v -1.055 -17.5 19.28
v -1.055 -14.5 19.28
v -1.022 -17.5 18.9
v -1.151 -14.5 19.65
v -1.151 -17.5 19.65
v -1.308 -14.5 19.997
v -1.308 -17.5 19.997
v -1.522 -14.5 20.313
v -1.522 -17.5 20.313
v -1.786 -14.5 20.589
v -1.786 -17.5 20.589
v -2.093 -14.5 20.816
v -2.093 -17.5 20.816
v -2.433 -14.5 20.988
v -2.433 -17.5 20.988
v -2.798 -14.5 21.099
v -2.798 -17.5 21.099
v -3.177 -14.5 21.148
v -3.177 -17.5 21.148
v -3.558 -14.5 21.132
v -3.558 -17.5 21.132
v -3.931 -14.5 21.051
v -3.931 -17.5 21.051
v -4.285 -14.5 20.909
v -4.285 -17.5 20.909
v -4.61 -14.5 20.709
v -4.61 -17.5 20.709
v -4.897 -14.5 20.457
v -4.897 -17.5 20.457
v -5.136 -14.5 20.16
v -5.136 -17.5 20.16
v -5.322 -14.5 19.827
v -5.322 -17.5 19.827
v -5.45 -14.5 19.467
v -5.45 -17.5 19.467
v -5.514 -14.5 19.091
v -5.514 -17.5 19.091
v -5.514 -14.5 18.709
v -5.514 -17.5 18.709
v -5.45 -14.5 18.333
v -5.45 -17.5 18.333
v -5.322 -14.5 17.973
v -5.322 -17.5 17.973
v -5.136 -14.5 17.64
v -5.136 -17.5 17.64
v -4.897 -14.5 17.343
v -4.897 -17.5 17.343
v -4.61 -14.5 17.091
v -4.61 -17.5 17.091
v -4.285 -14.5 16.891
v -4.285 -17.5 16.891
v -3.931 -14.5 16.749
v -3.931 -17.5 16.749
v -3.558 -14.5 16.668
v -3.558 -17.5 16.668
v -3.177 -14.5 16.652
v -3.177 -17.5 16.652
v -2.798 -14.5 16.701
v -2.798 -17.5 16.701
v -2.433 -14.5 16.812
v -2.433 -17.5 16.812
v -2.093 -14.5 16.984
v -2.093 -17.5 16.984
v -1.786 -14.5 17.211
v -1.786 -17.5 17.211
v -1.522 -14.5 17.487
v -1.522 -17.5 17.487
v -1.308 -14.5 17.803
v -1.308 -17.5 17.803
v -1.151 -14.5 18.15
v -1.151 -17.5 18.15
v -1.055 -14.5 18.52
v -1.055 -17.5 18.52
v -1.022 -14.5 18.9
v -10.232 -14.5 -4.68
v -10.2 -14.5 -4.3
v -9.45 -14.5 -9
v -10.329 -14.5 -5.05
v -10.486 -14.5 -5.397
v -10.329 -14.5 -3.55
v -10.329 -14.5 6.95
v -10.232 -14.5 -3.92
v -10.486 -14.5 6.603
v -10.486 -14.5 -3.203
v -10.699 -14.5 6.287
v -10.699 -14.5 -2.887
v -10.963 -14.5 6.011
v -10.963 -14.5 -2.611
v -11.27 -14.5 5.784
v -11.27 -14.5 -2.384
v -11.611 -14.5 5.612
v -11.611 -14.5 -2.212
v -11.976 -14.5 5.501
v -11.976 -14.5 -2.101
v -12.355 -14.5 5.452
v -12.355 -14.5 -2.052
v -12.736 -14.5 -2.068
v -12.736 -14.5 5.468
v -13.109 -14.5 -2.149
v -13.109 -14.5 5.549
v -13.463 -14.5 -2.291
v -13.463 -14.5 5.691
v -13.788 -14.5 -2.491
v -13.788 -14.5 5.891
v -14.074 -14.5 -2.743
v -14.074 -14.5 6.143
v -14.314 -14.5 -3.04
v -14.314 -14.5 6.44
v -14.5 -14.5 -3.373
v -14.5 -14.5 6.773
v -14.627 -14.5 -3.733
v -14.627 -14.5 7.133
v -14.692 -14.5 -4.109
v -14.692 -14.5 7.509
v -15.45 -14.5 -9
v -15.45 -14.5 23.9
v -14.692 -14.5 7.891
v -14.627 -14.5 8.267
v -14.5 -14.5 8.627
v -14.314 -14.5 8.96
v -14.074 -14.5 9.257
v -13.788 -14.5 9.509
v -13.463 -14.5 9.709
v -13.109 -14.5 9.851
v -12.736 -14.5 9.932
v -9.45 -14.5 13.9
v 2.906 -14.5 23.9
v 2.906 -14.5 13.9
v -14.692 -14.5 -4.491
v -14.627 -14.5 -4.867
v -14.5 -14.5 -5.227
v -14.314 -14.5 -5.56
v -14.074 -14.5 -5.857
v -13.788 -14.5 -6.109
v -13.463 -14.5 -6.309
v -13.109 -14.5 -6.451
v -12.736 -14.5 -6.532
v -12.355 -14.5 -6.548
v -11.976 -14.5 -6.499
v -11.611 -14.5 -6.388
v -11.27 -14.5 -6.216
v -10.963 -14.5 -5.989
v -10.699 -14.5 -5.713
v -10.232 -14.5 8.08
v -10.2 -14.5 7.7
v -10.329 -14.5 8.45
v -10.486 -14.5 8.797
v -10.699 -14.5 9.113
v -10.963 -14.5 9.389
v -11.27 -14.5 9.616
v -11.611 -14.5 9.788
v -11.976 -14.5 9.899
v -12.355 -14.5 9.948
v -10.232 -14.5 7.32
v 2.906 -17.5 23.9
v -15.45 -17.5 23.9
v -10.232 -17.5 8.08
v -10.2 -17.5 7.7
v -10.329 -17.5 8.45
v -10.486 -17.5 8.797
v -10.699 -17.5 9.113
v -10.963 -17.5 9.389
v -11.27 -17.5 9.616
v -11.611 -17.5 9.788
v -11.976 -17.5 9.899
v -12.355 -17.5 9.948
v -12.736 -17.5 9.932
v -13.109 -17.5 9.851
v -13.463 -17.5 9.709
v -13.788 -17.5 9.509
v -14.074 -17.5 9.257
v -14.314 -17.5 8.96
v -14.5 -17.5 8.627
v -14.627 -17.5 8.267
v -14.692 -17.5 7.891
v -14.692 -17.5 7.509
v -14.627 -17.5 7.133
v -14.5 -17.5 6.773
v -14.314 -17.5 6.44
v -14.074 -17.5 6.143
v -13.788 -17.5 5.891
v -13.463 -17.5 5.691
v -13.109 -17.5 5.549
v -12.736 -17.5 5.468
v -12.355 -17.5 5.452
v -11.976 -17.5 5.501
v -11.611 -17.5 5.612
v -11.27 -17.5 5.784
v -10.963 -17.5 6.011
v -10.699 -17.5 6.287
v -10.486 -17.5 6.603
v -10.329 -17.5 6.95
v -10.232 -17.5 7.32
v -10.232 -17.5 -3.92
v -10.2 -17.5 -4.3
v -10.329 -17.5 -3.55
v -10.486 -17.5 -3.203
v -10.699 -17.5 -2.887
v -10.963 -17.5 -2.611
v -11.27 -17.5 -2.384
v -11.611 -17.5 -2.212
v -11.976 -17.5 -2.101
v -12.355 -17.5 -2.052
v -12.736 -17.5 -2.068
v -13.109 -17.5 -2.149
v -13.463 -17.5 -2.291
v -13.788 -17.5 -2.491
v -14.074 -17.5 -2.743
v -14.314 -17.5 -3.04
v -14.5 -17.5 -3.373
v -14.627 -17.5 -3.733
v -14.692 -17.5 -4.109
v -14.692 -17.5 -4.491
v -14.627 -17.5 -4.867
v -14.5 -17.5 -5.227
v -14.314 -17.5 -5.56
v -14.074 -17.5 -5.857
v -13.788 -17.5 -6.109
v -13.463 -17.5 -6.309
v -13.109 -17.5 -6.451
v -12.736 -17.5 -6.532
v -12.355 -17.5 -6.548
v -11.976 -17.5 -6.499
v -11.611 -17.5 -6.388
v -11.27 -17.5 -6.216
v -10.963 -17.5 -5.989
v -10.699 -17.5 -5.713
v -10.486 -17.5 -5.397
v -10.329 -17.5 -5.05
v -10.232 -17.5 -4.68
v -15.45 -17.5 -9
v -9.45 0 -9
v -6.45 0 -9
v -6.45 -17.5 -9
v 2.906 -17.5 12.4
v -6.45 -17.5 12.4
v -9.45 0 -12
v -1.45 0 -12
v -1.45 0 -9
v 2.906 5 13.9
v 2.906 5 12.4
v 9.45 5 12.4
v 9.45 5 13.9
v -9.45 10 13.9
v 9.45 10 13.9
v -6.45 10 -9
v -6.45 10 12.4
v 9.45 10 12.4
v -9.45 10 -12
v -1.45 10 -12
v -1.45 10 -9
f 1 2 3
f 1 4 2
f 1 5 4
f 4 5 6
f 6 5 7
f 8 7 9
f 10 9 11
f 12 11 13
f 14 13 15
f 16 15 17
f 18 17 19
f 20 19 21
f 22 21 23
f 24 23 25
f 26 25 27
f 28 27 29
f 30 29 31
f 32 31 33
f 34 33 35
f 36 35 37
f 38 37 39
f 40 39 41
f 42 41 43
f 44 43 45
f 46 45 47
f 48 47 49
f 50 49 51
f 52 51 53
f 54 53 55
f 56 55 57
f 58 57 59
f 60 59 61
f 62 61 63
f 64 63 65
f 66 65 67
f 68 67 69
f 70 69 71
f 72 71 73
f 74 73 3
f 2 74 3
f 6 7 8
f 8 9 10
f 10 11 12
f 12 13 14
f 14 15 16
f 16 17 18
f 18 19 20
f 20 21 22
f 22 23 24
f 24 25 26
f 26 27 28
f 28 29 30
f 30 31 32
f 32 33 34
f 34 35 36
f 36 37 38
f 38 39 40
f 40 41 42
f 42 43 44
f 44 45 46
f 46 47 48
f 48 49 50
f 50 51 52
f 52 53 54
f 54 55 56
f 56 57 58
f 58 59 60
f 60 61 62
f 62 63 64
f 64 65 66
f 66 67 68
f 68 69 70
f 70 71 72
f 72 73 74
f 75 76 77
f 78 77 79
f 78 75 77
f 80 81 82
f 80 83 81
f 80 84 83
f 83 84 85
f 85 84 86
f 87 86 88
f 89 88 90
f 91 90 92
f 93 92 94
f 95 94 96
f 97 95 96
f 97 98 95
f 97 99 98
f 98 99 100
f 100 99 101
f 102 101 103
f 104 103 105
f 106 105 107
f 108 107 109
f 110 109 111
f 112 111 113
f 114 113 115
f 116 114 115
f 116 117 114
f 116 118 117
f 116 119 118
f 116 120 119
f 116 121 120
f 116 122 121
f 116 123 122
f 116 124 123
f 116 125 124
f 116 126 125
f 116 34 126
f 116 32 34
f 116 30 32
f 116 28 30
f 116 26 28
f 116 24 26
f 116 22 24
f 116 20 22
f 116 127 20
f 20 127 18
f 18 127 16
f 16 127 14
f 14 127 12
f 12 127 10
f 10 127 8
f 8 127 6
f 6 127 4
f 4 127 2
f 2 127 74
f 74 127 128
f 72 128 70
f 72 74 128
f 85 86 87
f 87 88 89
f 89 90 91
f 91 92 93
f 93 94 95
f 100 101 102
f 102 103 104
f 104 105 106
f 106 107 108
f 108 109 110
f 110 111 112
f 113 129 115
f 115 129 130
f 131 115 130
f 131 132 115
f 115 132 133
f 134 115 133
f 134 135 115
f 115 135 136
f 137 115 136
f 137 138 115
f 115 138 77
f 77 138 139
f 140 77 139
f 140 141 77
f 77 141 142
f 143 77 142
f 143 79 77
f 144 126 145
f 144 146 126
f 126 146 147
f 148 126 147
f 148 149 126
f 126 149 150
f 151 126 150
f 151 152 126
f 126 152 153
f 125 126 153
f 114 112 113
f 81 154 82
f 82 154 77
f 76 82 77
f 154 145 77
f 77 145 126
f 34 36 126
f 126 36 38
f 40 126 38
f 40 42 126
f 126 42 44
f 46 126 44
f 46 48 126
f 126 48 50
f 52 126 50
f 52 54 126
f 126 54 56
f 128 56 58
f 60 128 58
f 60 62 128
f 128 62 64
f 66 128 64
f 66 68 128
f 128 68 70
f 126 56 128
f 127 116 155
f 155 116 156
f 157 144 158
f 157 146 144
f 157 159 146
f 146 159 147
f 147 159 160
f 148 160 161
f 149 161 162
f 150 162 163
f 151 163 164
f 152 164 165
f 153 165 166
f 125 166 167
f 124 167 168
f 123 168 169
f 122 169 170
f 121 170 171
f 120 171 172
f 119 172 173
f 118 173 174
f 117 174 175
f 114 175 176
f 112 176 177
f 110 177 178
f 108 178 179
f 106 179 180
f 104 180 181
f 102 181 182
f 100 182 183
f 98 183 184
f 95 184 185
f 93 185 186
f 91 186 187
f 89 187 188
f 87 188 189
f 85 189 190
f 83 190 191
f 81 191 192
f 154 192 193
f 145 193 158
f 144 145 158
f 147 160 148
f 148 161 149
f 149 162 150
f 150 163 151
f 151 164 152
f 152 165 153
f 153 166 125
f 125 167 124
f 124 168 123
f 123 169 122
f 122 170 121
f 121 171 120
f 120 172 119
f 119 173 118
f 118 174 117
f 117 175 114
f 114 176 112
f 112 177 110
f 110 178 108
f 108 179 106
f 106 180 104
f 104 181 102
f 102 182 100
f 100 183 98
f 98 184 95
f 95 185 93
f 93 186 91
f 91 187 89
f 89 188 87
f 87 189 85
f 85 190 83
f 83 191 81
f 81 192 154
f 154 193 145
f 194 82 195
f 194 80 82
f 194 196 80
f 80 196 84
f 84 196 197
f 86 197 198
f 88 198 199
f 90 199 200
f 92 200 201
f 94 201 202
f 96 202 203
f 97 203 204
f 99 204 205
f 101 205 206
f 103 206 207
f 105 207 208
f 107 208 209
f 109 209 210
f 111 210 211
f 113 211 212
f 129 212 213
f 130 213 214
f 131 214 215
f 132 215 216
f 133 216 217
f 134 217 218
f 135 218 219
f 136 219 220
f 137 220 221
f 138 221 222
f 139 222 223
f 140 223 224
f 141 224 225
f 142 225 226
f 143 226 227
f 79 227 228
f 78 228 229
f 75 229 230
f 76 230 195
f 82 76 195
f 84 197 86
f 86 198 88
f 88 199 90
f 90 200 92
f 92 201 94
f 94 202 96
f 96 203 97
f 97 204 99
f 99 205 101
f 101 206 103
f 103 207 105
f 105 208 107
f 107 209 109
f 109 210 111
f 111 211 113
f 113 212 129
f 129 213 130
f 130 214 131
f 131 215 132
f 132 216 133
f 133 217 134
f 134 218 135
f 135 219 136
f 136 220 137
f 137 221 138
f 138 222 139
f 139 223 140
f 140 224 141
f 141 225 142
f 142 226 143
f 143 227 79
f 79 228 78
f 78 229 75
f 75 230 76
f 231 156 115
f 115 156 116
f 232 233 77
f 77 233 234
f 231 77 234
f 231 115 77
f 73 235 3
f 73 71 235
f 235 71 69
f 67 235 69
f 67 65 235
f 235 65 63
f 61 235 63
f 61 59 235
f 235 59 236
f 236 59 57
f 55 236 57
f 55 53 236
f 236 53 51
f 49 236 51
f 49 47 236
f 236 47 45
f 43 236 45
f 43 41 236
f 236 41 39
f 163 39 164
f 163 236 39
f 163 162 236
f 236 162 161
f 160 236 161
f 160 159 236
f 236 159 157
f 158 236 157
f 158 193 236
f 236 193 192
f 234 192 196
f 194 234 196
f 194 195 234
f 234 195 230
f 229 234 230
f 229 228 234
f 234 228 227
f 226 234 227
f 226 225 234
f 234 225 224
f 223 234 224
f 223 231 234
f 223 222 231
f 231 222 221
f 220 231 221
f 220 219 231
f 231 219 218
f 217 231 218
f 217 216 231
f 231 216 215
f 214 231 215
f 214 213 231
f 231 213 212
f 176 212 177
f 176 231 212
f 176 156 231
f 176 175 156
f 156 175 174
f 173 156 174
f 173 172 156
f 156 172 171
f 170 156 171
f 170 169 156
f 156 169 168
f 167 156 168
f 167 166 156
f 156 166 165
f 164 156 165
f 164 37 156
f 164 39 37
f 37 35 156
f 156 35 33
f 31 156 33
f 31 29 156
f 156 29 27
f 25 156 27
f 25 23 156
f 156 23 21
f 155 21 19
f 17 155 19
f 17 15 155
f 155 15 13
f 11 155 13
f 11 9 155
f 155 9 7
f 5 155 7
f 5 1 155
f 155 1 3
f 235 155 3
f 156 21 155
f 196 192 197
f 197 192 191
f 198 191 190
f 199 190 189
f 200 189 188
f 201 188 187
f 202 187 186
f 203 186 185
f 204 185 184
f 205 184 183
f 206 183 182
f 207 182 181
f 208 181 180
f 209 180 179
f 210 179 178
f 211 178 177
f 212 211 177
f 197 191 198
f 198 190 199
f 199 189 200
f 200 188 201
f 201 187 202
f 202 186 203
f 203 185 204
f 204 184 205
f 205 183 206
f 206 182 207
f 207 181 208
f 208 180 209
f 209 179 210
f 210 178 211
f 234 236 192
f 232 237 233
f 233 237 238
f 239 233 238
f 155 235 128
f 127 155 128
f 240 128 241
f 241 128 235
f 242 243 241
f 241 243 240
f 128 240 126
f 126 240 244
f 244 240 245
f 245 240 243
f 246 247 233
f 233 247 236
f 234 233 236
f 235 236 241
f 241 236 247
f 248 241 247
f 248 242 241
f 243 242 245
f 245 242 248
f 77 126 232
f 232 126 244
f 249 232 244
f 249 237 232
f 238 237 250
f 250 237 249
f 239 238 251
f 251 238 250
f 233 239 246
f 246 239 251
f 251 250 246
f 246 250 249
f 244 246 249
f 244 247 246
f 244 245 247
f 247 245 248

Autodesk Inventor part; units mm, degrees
ref_plane "YZ Plane" through (0, 0, 0) normal (1, 0, 0) x (0, 1, 0)
ref_plane "XZ Plane" through (0, 0, 0) normal (0, 1, 0) x (-1, 0, 0)
ref_plane "XY Plane" through (0, 0, 0) normal (0, 0, 1) x (1, 0, 0)
sketch "Sketch1" plane through (0, 0, 0) normal (0, 1, 0) x (-1, 0, 0)
  line L0 (-9.45, 13.9) -> (9.45, 13.9)
  line L1 (9.45, 13.9) -> (9.45, 12.4)
  line L2 (9.45, 12.4) -> (-9.45, 12.4)
  line L3 (-9.45, 12.4) -> (-9.45, 13.9)
  line L4 (9.45, 12.4) -> (6.45, 12.4)
  line L5 (6.45, 12.4) -> (6.45, -9)
  line L6 (6.45, -9) -> (9.45, -9)
  line L7 (9.45, -9) -> (9.45, 12.4)
  line L8 (-9.45, 12.4) -> (-7.95, 12.4)
  line L9 (-7.95, 12.4) -> (-7.95, -9)
  line L10 (-7.95, -9) -> (-9.45, -9)
  line L11 (-9.45, -9) -> (-9.45, 12.4)
  line L12 (-7.95, -9) -> (-9.45, -9)
  line L13 (-9.45, -9) -> (-9.45, -12)
  line L14 (-9.45, -12) -> (-7.95, -12)
  line L15 (-7.95, -12) -> (-7.95, -9)
  line L16 (1.45, -9) -> (9.45, -9)
  line L17 (9.45, -9) -> (9.45, -12)
  line L18 (9.45, -12) -> (1.45, -12)
  line L19 (1.45, -12) -> (1.45, -9)
  line L20 (-9.45, -12) -> (-7.95, -12)
  line L21 (9.45, -12) -> (6.45, -12)
  line L22 (-7.95, -12) -> (-4.95, -12)
  line L23 (-4.95, -12) -> (-4.95, -9)
  line L24 (-4.95, -9) -> (-7.95, -9)
  line L25 (-7.95, -9) -> (-7.95, -12)
  point P0 (0, 0)
  point P1 (0, 12.4)
  dimension "d0" = 1.5
  dimension "d1" = 3
  dimension "d2" = 1.5
  dimension "d3" = 3
  dimension "d4" = 3
  dimension "d5" = 0
  dimension "d6" = 5
  dimension "d7" = 14.4
  dimension "d8" = 21.4
  dimension "d9" = 21.4
  dimension "d12" = 0
  dimension "d13" = 0
  dimension "d38" = 3
extrude "Extrusion1" add sketch "Sketch1" along normal blind 10 contours L0 L1 L2 L3 | L7 L6 L5 L2 | L17 L18 L19 L16 L6
sketch "Sketch8" plane through (0, 0, 0) normal (0, -1, 0) x (1, 0, 0)
  line L0 (2.9056, 13.9) -> (14.45, 13.9)
  line L1 (14.45, 13.9) -> (14.45, -22.6)
  line L2 (14.45, -22.6) -> (2.9056, -22.6)
  line L3 (2.9056, -22.6) -> (2.9056, 13.9)
  line L4 (-9.45, 13.9) -> (9.45, 13.9) projected
  point P0 (0, 0)
extrude "Extrusion6" cut sketch "Sketch8" against normal blind 5
sketch "Sketch9" plane through (0, 0, 0) normal (0, -1, 0) x (1, 0, 0)
  line L0 (2.9056, 12.4) -> (2.9056, 13.9) projected
  line L1 (-9.45, 13.9) -> (2.9056, 13.9) projected
  line L2 (-9.45, 13.9) -> (-9.45, -12) projected
  line L3 (-9.45, -12) -> (-1.45, -12) projected
  line L4 (-1.45, -12) -> (-1.45, -9) projected
  line L5 (-1.45, -9) -> (-6.45, -9) projected
  line L6 (-6.45, 12.4) -> (-6.45, -9) projected
  line L7 (2.9056, 12.4) -> (-6.45, 12.4) projected
  line L8 (-6.45, -9) -> (-1.45, -9) projected
  line L9 (-9.45, -12) -> (-9.45, 13.9) projected
  line L10 (-6.45, -9) -> (-9.45, -9)
  line L11 (-9.45, -9) -> (-9.45, 12.4)
  line L12 (-9.45, 12.4) -> (-6.45, 12.4)
  line L13 (-6.45, 12.4) -> (-6.45, -9)
  point P0 (0, 0)
extrude "Extrusion7" add sketch "Sketch9" along normal blind 17.5 contours L6 L10 L2 L12
sketch "Sketch10" plane through (-9.45, 0, 13.9) normal (-1, 0, 0) x (0, 0, 1)
  line L0 (-22.9, -17.5) -> (-1.5, -17.5) projected
  line L1 (-1.5, 0) -> (-1.5, -17.5) projected
  line L2 (-22.9, -17.5) -> (-1.5, -17.5)
  line L3 (-1.5, -17.5) -> (-1.5, -14.5)
  line L4 (-1.5, -14.5) -> (-22.9, -14.5)
  line L5 (-22.9, -14.5) -> (-22.9, -17.5)
  point P0 (-13.9, 0)
  dimension "d41" = 3
extrude "Extrusion8" add sketch "Sketch10" along normal blind 6
sketch "Sketch11" plane through (-9.45, -14.5, 12.4) normal (0, 1, 0) x (1, 0, 0)
  line L0 (0, 21.4) -> (0, 0) projected
  line L1 (0, 21.4) -> (-6, 21.4) projected
  line L2 (-6, 0) -> (-6, 21.4) projected
  line L3 (0, 0) -> (-6, 0) projected
  line L4 (3, 21.4) -> (-6, 21.4) projected
  line L5 (-3, 21.4) -> (-3, 0) construction
  circle A0 centre (-3, 4.7) radius 2.25
  circle A1 centre (-3, 16.7) radius 2.25
  line L6 (-6, 0) -> (-6, 21.4) projected
  line L7 (-6, 10.7) -> (0, 10.7) construction
  point P0 (9.45, 12.4)
  dimension "d44" = 4.5
  dimension "d45" = 4.5
  dimension "d50" = 6
  dimension "d51" = 6
extrude "Extrusion9" cut sketch "Sketch11" against normal blind 3 contours A0 | A1
sketch "Sketch12" plane through (0, 0, 0) normal (0, -1, 0) x (1, 0, 0)
  line L0 (-9.45, 12.4) -> (-6.45, 12.4) projected
  line L1 (2.9056, 12.4) -> (-6.45, 12.4) projected
  line L2 (2.9056, 12.4) -> (2.9056, 13.9) projected
  line L3 (-9.45, 13.9) -> (2.9056, 13.9) projected
  line L4 (-9.45, 13.9) -> (-9.45, 12.4) projected
  point P0 (0, 0)
extrude "Extrusion10" add sketch "Sketch12" along normal blind 17.5
sketch "Sketch13" plane through (-9.45, 10, 13.9) normal (0, 0, 1) x (1, 0, 0)
  line L0 (12.3556, -27.5) -> (12.3556, -5) projected
  line L1 (12.3556, -5) -> (18.9, -5) projected
  line L2 (18.9, -5) -> (18.9, 0) projected
  line L3 (0, 0) -> (18.9, 0) projected
  line L4 (0, -27.5) -> (0, 0) projected
  line L5 (12.3556, -27.5) -> (0, -27.5) projected
  line L6 (12.3556, -5) -> (12.3556, -27.5) projected
  line L7 (0, -27.5) -> (0, 0) projected
  line L8 (12.3556, -27.5) -> (0, -27.5)
  line L9 (0, -27.5) -> (0, -24.5)
  line L10 (0, -24.5) -> (12.3556, -24.5)
  line L11 (12.3556, -24.5) -> (12.3556, -27.5)
  point P0 (9.45, -10)
  dimension "d54" = 3
extrude "Extrusion11" add sketch "Sketch13" along normal blind 10 contours L5 L4 L10 L0
sketch "Sketch14" plane through (-9.45, -14.5, 13.9) normal (0, 1, 0) x (1, 0, 0)
  line L0 (0, 0) -> (12.3556, 0) projected
  line L1 (0, 0) -> (0, -10) projected
  line L2 (12.3556, -10) -> (0, -10) projected
  line L3 (12.3556, 0) -> (12.3556, -10) projected
  circle A0 centre (6.1778, -5) radius 2.25
  point P0 (9.45, 13.9)
  dimension "d57" = 4.5
extrude "Extrusion12" cut sketch "Sketch14" against normal blind 3 contours A0
sketch "Sketch15" plane through (-9.45, 0, -12) normal (-1, 0, 0) x (0, 0, 1)
  line L0 (3, -14.5) -> (24.4, -14.5) projected
  line L1 (24.4, -17.5) -> (24.4, -14.5) projected
  line L2 (24.4, -17.5) -> (35.9, -17.5) projected
  line L3 (35.9, -14.5) -> (35.9, -17.5) projected
  line L4 (25.9, -14.5) -> (35.9, -14.5) projected
  line L5 (25.9, -14.5) -> (25.9, 10) projected
  line L6 (0, 10) -> (25.9, 10) projected
  line L7 (0, 0) -> (0, 10) projected
  line L8 (3, 0) -> (0, 0) projected
  line L9 (3, 0) -> (3, -14.5) projected
  line L10 (24.4, -17.5) -> (35.9, -17.5) projected
  line L11 (24.4, -17.5) -> (24.4, -14.5) projected
  line L12 (35.9, -17.5) -> (24.4, -17.5)
  line L13 (24.4, -17.5) -> (24.4, -14.5)
  line L14 (24.4, -14.5) -> (35.9, -14.5)
  line L15 (35.9, -14.5) -> (35.9, -17.5)
  point P0 (12, 0)
extrude "Extrusion13" add sketch "Sketch15" along normal blind 6 contours L14 L4 L3 L2 L1
sketch "Sketch16" plane through (0, -17.5, 0) normal (0, -1, 0) x (1, 0, 0)
  circle A0 centre (-3.2722, 18.9) radius 2.25 projected
  circle A1 centre (-12.45, 7.7) radius 2.25 projected
  circle A2 centre (-12.45, -4.3) radius 2.25 projected
  line L0 (-6.45, -9) -> (-15.45, -9) projected
  line L1 (-6.45, -9) -> (-6.45, 12.4) projected
  line L2 (-6.45, 12.4) -> (2.9056, 12.4) projected
  line L3 (2.9056, 12.4) -> (2.9056, 23.9) projected
  line L4 (2.9056, 23.9) -> (-15.45, 23.9) projected
  line L5 (-15.45, -9) -> (-15.45, 23.9) projected
  point P0 (0, 0)
equation "\"sp\" = 0.4"
properties part number "MotorMount"
